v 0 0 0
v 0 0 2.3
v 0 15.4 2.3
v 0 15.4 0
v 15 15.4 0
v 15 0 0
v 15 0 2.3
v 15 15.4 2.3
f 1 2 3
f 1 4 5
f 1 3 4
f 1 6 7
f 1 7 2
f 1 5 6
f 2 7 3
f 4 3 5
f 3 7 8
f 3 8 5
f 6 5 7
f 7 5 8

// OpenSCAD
/* Warning, this is a very basic generator with a lot of approximation 
input data : [QDPAK, 7UW, 15x15.4x2.30mm, 22, , A, C04-00650A]
generated by com.zoubworld.electronics.cad.model3d.Basic
Date : Sun Feb 15 10:50:49 CET 2026
*/

//body
color("black")
translate([0,0,0])
cube([15.0,15.4,2.3], center=false);
